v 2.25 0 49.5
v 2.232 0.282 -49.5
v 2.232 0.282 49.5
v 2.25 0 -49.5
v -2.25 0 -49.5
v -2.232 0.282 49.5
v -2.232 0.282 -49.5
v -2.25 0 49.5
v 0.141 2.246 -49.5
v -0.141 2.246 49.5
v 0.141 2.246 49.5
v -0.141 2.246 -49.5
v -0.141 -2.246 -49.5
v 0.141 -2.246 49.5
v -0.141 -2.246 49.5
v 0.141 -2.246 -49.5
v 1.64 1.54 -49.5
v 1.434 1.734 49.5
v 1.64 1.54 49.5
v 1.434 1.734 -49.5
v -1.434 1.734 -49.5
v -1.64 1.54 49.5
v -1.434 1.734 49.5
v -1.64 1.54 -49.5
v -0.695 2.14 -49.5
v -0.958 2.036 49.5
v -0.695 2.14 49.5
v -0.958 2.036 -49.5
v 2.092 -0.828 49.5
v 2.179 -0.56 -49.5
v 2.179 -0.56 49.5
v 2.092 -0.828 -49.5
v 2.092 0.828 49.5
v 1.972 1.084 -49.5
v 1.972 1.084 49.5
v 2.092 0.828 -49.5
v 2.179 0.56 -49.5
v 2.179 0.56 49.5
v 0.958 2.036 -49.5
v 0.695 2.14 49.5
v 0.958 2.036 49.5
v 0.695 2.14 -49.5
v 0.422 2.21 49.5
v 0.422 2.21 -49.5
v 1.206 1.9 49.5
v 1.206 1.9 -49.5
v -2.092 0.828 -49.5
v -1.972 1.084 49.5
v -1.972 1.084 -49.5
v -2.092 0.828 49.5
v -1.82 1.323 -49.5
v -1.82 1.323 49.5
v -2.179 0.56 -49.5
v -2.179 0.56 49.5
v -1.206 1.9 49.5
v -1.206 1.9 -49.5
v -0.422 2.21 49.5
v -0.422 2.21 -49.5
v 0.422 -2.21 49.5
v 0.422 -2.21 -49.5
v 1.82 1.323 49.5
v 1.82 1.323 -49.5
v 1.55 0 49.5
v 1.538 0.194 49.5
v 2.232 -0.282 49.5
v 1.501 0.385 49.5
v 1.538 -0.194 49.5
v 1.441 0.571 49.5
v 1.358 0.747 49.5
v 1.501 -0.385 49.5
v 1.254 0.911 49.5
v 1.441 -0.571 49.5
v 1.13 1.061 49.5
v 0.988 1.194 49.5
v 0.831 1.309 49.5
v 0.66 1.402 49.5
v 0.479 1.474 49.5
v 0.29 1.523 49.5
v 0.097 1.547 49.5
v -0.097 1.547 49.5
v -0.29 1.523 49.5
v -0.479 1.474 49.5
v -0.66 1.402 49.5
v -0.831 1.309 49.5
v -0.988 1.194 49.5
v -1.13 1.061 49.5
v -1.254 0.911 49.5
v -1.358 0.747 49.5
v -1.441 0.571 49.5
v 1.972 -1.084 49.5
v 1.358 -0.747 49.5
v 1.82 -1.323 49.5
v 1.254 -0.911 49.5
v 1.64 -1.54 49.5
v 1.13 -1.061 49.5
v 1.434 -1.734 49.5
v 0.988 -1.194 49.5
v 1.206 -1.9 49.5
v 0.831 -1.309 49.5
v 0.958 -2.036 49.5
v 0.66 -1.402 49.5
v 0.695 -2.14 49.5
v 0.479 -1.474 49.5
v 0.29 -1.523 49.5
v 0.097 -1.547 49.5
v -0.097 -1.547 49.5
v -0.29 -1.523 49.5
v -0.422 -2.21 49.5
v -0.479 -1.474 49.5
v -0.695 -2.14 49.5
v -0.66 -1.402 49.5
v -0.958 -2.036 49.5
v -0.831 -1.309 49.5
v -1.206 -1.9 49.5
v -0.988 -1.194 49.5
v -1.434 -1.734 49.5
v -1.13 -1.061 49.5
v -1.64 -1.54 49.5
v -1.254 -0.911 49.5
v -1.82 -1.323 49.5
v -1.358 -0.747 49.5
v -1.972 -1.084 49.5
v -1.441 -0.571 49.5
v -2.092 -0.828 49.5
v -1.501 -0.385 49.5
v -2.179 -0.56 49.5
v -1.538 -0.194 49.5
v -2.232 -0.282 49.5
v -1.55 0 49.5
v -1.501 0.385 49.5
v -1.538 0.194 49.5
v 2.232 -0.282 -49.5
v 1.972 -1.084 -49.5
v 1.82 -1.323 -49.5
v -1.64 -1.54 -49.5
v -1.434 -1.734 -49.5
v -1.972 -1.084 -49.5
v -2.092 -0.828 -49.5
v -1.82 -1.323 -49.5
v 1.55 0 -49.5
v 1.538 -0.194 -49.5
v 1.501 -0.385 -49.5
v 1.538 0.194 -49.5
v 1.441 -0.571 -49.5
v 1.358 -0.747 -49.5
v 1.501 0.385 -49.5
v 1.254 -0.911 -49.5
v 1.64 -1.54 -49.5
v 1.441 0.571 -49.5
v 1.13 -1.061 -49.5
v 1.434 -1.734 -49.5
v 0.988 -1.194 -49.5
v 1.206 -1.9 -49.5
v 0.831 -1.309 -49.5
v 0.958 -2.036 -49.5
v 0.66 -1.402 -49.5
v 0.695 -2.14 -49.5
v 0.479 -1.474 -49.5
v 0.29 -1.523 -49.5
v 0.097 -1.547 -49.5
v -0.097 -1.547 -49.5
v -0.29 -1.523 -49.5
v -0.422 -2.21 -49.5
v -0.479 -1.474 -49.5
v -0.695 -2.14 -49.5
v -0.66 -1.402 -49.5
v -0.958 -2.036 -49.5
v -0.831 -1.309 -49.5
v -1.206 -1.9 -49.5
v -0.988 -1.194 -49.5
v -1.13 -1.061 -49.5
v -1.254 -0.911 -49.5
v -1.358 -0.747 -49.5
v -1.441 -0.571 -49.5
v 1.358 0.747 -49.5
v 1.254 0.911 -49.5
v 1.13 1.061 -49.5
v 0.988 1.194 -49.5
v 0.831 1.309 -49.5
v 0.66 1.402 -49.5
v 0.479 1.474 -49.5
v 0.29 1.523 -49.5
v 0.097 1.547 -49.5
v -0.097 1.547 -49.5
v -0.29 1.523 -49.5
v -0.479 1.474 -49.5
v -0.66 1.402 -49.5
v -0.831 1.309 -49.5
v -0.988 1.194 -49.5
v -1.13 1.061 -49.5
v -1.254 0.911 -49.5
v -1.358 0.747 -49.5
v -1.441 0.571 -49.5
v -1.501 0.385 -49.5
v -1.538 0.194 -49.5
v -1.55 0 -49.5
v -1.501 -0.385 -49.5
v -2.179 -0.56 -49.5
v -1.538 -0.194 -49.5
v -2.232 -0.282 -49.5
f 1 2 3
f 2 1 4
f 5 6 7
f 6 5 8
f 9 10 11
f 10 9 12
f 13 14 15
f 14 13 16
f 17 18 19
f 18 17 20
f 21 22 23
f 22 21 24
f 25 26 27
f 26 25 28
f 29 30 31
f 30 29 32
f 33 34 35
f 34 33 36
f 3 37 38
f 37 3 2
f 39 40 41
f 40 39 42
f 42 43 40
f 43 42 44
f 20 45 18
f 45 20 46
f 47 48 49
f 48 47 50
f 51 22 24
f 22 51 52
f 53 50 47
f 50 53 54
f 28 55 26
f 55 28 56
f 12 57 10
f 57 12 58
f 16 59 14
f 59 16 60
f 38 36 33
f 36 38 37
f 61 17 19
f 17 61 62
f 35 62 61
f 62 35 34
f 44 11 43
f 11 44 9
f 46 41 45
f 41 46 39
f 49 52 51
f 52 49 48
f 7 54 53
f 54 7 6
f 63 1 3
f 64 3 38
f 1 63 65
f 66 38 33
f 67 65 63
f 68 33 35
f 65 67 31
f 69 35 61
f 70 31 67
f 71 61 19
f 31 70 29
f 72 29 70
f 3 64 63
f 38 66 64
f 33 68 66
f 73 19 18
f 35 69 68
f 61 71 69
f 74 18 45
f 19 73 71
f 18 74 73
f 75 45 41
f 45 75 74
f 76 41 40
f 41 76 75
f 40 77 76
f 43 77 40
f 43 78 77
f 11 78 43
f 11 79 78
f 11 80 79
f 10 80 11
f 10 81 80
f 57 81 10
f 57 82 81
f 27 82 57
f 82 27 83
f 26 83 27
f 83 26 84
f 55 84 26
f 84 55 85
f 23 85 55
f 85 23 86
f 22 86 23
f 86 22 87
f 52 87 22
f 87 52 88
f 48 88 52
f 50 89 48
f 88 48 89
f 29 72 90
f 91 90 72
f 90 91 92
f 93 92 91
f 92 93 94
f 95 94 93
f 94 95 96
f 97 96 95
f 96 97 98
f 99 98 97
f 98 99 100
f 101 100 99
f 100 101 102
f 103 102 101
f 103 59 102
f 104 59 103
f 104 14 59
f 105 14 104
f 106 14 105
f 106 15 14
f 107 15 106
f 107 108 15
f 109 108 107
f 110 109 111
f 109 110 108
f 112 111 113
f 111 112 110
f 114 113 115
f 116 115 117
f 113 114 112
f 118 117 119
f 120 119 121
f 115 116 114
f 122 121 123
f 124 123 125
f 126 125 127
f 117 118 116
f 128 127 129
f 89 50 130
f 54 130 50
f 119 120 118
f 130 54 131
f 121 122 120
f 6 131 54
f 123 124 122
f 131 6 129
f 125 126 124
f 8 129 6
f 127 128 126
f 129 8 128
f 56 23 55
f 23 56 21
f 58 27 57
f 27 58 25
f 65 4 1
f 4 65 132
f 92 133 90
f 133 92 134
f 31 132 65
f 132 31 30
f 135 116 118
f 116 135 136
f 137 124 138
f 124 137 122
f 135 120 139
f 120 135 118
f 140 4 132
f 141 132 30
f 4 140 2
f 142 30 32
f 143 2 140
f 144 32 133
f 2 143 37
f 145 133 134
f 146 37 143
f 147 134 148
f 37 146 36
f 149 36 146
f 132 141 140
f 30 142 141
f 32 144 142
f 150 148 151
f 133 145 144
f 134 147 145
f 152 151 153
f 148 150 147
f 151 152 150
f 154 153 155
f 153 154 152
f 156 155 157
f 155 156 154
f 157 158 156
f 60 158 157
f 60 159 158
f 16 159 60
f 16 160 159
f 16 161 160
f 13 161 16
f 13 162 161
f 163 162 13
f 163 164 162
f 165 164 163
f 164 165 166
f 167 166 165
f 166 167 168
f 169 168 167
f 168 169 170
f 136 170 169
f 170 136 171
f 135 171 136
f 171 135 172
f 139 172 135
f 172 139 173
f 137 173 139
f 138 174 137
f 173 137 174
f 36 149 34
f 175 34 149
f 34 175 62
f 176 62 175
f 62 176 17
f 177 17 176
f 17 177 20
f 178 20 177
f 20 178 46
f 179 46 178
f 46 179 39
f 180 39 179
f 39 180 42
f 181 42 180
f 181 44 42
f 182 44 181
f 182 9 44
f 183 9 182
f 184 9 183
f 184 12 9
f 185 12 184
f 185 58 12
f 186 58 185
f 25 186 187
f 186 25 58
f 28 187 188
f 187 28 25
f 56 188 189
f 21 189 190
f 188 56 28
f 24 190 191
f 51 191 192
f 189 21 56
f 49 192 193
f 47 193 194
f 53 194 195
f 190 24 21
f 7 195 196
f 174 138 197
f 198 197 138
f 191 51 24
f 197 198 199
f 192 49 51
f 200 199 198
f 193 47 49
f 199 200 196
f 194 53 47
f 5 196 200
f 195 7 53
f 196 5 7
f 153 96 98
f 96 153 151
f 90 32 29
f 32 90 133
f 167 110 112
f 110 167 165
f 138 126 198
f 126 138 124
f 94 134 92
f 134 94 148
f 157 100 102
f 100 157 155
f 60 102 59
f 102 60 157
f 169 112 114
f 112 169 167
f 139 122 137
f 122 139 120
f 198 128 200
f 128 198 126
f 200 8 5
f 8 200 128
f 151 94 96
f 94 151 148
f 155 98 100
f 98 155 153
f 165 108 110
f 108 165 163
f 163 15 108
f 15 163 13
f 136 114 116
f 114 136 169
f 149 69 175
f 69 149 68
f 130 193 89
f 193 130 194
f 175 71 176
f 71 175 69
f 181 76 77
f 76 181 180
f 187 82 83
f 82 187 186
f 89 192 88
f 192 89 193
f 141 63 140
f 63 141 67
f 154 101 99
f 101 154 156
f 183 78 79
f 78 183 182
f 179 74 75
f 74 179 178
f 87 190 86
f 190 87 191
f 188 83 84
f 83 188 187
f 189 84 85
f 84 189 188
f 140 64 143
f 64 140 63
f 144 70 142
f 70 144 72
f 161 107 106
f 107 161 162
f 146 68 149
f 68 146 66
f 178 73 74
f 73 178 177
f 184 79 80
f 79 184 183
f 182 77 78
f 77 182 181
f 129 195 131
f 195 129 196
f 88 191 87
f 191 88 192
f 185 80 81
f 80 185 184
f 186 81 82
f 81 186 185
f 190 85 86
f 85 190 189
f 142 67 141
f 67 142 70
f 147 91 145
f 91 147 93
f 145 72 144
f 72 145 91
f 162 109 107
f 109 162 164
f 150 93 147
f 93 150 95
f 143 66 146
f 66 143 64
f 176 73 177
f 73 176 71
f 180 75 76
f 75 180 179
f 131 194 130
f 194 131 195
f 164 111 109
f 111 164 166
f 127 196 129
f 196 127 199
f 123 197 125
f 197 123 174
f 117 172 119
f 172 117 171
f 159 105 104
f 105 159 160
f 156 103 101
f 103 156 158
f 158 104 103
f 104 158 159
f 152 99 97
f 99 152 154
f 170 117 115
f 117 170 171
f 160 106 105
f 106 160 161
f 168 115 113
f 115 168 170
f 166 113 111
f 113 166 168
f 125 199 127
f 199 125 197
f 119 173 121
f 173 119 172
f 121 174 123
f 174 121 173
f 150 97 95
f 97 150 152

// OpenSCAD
$fn = 50;


difference() {
	union() {
		translate(v = [0, 0, -49.5000000000]) {
			cylinder(h = 99, r = 2.2500000000);
		}
	}
	union() {
		translate(v = [0, 0, -100.0000000000]) {
			cylinder(h = 200, r = 1.5500000000);
		}
	}
}
